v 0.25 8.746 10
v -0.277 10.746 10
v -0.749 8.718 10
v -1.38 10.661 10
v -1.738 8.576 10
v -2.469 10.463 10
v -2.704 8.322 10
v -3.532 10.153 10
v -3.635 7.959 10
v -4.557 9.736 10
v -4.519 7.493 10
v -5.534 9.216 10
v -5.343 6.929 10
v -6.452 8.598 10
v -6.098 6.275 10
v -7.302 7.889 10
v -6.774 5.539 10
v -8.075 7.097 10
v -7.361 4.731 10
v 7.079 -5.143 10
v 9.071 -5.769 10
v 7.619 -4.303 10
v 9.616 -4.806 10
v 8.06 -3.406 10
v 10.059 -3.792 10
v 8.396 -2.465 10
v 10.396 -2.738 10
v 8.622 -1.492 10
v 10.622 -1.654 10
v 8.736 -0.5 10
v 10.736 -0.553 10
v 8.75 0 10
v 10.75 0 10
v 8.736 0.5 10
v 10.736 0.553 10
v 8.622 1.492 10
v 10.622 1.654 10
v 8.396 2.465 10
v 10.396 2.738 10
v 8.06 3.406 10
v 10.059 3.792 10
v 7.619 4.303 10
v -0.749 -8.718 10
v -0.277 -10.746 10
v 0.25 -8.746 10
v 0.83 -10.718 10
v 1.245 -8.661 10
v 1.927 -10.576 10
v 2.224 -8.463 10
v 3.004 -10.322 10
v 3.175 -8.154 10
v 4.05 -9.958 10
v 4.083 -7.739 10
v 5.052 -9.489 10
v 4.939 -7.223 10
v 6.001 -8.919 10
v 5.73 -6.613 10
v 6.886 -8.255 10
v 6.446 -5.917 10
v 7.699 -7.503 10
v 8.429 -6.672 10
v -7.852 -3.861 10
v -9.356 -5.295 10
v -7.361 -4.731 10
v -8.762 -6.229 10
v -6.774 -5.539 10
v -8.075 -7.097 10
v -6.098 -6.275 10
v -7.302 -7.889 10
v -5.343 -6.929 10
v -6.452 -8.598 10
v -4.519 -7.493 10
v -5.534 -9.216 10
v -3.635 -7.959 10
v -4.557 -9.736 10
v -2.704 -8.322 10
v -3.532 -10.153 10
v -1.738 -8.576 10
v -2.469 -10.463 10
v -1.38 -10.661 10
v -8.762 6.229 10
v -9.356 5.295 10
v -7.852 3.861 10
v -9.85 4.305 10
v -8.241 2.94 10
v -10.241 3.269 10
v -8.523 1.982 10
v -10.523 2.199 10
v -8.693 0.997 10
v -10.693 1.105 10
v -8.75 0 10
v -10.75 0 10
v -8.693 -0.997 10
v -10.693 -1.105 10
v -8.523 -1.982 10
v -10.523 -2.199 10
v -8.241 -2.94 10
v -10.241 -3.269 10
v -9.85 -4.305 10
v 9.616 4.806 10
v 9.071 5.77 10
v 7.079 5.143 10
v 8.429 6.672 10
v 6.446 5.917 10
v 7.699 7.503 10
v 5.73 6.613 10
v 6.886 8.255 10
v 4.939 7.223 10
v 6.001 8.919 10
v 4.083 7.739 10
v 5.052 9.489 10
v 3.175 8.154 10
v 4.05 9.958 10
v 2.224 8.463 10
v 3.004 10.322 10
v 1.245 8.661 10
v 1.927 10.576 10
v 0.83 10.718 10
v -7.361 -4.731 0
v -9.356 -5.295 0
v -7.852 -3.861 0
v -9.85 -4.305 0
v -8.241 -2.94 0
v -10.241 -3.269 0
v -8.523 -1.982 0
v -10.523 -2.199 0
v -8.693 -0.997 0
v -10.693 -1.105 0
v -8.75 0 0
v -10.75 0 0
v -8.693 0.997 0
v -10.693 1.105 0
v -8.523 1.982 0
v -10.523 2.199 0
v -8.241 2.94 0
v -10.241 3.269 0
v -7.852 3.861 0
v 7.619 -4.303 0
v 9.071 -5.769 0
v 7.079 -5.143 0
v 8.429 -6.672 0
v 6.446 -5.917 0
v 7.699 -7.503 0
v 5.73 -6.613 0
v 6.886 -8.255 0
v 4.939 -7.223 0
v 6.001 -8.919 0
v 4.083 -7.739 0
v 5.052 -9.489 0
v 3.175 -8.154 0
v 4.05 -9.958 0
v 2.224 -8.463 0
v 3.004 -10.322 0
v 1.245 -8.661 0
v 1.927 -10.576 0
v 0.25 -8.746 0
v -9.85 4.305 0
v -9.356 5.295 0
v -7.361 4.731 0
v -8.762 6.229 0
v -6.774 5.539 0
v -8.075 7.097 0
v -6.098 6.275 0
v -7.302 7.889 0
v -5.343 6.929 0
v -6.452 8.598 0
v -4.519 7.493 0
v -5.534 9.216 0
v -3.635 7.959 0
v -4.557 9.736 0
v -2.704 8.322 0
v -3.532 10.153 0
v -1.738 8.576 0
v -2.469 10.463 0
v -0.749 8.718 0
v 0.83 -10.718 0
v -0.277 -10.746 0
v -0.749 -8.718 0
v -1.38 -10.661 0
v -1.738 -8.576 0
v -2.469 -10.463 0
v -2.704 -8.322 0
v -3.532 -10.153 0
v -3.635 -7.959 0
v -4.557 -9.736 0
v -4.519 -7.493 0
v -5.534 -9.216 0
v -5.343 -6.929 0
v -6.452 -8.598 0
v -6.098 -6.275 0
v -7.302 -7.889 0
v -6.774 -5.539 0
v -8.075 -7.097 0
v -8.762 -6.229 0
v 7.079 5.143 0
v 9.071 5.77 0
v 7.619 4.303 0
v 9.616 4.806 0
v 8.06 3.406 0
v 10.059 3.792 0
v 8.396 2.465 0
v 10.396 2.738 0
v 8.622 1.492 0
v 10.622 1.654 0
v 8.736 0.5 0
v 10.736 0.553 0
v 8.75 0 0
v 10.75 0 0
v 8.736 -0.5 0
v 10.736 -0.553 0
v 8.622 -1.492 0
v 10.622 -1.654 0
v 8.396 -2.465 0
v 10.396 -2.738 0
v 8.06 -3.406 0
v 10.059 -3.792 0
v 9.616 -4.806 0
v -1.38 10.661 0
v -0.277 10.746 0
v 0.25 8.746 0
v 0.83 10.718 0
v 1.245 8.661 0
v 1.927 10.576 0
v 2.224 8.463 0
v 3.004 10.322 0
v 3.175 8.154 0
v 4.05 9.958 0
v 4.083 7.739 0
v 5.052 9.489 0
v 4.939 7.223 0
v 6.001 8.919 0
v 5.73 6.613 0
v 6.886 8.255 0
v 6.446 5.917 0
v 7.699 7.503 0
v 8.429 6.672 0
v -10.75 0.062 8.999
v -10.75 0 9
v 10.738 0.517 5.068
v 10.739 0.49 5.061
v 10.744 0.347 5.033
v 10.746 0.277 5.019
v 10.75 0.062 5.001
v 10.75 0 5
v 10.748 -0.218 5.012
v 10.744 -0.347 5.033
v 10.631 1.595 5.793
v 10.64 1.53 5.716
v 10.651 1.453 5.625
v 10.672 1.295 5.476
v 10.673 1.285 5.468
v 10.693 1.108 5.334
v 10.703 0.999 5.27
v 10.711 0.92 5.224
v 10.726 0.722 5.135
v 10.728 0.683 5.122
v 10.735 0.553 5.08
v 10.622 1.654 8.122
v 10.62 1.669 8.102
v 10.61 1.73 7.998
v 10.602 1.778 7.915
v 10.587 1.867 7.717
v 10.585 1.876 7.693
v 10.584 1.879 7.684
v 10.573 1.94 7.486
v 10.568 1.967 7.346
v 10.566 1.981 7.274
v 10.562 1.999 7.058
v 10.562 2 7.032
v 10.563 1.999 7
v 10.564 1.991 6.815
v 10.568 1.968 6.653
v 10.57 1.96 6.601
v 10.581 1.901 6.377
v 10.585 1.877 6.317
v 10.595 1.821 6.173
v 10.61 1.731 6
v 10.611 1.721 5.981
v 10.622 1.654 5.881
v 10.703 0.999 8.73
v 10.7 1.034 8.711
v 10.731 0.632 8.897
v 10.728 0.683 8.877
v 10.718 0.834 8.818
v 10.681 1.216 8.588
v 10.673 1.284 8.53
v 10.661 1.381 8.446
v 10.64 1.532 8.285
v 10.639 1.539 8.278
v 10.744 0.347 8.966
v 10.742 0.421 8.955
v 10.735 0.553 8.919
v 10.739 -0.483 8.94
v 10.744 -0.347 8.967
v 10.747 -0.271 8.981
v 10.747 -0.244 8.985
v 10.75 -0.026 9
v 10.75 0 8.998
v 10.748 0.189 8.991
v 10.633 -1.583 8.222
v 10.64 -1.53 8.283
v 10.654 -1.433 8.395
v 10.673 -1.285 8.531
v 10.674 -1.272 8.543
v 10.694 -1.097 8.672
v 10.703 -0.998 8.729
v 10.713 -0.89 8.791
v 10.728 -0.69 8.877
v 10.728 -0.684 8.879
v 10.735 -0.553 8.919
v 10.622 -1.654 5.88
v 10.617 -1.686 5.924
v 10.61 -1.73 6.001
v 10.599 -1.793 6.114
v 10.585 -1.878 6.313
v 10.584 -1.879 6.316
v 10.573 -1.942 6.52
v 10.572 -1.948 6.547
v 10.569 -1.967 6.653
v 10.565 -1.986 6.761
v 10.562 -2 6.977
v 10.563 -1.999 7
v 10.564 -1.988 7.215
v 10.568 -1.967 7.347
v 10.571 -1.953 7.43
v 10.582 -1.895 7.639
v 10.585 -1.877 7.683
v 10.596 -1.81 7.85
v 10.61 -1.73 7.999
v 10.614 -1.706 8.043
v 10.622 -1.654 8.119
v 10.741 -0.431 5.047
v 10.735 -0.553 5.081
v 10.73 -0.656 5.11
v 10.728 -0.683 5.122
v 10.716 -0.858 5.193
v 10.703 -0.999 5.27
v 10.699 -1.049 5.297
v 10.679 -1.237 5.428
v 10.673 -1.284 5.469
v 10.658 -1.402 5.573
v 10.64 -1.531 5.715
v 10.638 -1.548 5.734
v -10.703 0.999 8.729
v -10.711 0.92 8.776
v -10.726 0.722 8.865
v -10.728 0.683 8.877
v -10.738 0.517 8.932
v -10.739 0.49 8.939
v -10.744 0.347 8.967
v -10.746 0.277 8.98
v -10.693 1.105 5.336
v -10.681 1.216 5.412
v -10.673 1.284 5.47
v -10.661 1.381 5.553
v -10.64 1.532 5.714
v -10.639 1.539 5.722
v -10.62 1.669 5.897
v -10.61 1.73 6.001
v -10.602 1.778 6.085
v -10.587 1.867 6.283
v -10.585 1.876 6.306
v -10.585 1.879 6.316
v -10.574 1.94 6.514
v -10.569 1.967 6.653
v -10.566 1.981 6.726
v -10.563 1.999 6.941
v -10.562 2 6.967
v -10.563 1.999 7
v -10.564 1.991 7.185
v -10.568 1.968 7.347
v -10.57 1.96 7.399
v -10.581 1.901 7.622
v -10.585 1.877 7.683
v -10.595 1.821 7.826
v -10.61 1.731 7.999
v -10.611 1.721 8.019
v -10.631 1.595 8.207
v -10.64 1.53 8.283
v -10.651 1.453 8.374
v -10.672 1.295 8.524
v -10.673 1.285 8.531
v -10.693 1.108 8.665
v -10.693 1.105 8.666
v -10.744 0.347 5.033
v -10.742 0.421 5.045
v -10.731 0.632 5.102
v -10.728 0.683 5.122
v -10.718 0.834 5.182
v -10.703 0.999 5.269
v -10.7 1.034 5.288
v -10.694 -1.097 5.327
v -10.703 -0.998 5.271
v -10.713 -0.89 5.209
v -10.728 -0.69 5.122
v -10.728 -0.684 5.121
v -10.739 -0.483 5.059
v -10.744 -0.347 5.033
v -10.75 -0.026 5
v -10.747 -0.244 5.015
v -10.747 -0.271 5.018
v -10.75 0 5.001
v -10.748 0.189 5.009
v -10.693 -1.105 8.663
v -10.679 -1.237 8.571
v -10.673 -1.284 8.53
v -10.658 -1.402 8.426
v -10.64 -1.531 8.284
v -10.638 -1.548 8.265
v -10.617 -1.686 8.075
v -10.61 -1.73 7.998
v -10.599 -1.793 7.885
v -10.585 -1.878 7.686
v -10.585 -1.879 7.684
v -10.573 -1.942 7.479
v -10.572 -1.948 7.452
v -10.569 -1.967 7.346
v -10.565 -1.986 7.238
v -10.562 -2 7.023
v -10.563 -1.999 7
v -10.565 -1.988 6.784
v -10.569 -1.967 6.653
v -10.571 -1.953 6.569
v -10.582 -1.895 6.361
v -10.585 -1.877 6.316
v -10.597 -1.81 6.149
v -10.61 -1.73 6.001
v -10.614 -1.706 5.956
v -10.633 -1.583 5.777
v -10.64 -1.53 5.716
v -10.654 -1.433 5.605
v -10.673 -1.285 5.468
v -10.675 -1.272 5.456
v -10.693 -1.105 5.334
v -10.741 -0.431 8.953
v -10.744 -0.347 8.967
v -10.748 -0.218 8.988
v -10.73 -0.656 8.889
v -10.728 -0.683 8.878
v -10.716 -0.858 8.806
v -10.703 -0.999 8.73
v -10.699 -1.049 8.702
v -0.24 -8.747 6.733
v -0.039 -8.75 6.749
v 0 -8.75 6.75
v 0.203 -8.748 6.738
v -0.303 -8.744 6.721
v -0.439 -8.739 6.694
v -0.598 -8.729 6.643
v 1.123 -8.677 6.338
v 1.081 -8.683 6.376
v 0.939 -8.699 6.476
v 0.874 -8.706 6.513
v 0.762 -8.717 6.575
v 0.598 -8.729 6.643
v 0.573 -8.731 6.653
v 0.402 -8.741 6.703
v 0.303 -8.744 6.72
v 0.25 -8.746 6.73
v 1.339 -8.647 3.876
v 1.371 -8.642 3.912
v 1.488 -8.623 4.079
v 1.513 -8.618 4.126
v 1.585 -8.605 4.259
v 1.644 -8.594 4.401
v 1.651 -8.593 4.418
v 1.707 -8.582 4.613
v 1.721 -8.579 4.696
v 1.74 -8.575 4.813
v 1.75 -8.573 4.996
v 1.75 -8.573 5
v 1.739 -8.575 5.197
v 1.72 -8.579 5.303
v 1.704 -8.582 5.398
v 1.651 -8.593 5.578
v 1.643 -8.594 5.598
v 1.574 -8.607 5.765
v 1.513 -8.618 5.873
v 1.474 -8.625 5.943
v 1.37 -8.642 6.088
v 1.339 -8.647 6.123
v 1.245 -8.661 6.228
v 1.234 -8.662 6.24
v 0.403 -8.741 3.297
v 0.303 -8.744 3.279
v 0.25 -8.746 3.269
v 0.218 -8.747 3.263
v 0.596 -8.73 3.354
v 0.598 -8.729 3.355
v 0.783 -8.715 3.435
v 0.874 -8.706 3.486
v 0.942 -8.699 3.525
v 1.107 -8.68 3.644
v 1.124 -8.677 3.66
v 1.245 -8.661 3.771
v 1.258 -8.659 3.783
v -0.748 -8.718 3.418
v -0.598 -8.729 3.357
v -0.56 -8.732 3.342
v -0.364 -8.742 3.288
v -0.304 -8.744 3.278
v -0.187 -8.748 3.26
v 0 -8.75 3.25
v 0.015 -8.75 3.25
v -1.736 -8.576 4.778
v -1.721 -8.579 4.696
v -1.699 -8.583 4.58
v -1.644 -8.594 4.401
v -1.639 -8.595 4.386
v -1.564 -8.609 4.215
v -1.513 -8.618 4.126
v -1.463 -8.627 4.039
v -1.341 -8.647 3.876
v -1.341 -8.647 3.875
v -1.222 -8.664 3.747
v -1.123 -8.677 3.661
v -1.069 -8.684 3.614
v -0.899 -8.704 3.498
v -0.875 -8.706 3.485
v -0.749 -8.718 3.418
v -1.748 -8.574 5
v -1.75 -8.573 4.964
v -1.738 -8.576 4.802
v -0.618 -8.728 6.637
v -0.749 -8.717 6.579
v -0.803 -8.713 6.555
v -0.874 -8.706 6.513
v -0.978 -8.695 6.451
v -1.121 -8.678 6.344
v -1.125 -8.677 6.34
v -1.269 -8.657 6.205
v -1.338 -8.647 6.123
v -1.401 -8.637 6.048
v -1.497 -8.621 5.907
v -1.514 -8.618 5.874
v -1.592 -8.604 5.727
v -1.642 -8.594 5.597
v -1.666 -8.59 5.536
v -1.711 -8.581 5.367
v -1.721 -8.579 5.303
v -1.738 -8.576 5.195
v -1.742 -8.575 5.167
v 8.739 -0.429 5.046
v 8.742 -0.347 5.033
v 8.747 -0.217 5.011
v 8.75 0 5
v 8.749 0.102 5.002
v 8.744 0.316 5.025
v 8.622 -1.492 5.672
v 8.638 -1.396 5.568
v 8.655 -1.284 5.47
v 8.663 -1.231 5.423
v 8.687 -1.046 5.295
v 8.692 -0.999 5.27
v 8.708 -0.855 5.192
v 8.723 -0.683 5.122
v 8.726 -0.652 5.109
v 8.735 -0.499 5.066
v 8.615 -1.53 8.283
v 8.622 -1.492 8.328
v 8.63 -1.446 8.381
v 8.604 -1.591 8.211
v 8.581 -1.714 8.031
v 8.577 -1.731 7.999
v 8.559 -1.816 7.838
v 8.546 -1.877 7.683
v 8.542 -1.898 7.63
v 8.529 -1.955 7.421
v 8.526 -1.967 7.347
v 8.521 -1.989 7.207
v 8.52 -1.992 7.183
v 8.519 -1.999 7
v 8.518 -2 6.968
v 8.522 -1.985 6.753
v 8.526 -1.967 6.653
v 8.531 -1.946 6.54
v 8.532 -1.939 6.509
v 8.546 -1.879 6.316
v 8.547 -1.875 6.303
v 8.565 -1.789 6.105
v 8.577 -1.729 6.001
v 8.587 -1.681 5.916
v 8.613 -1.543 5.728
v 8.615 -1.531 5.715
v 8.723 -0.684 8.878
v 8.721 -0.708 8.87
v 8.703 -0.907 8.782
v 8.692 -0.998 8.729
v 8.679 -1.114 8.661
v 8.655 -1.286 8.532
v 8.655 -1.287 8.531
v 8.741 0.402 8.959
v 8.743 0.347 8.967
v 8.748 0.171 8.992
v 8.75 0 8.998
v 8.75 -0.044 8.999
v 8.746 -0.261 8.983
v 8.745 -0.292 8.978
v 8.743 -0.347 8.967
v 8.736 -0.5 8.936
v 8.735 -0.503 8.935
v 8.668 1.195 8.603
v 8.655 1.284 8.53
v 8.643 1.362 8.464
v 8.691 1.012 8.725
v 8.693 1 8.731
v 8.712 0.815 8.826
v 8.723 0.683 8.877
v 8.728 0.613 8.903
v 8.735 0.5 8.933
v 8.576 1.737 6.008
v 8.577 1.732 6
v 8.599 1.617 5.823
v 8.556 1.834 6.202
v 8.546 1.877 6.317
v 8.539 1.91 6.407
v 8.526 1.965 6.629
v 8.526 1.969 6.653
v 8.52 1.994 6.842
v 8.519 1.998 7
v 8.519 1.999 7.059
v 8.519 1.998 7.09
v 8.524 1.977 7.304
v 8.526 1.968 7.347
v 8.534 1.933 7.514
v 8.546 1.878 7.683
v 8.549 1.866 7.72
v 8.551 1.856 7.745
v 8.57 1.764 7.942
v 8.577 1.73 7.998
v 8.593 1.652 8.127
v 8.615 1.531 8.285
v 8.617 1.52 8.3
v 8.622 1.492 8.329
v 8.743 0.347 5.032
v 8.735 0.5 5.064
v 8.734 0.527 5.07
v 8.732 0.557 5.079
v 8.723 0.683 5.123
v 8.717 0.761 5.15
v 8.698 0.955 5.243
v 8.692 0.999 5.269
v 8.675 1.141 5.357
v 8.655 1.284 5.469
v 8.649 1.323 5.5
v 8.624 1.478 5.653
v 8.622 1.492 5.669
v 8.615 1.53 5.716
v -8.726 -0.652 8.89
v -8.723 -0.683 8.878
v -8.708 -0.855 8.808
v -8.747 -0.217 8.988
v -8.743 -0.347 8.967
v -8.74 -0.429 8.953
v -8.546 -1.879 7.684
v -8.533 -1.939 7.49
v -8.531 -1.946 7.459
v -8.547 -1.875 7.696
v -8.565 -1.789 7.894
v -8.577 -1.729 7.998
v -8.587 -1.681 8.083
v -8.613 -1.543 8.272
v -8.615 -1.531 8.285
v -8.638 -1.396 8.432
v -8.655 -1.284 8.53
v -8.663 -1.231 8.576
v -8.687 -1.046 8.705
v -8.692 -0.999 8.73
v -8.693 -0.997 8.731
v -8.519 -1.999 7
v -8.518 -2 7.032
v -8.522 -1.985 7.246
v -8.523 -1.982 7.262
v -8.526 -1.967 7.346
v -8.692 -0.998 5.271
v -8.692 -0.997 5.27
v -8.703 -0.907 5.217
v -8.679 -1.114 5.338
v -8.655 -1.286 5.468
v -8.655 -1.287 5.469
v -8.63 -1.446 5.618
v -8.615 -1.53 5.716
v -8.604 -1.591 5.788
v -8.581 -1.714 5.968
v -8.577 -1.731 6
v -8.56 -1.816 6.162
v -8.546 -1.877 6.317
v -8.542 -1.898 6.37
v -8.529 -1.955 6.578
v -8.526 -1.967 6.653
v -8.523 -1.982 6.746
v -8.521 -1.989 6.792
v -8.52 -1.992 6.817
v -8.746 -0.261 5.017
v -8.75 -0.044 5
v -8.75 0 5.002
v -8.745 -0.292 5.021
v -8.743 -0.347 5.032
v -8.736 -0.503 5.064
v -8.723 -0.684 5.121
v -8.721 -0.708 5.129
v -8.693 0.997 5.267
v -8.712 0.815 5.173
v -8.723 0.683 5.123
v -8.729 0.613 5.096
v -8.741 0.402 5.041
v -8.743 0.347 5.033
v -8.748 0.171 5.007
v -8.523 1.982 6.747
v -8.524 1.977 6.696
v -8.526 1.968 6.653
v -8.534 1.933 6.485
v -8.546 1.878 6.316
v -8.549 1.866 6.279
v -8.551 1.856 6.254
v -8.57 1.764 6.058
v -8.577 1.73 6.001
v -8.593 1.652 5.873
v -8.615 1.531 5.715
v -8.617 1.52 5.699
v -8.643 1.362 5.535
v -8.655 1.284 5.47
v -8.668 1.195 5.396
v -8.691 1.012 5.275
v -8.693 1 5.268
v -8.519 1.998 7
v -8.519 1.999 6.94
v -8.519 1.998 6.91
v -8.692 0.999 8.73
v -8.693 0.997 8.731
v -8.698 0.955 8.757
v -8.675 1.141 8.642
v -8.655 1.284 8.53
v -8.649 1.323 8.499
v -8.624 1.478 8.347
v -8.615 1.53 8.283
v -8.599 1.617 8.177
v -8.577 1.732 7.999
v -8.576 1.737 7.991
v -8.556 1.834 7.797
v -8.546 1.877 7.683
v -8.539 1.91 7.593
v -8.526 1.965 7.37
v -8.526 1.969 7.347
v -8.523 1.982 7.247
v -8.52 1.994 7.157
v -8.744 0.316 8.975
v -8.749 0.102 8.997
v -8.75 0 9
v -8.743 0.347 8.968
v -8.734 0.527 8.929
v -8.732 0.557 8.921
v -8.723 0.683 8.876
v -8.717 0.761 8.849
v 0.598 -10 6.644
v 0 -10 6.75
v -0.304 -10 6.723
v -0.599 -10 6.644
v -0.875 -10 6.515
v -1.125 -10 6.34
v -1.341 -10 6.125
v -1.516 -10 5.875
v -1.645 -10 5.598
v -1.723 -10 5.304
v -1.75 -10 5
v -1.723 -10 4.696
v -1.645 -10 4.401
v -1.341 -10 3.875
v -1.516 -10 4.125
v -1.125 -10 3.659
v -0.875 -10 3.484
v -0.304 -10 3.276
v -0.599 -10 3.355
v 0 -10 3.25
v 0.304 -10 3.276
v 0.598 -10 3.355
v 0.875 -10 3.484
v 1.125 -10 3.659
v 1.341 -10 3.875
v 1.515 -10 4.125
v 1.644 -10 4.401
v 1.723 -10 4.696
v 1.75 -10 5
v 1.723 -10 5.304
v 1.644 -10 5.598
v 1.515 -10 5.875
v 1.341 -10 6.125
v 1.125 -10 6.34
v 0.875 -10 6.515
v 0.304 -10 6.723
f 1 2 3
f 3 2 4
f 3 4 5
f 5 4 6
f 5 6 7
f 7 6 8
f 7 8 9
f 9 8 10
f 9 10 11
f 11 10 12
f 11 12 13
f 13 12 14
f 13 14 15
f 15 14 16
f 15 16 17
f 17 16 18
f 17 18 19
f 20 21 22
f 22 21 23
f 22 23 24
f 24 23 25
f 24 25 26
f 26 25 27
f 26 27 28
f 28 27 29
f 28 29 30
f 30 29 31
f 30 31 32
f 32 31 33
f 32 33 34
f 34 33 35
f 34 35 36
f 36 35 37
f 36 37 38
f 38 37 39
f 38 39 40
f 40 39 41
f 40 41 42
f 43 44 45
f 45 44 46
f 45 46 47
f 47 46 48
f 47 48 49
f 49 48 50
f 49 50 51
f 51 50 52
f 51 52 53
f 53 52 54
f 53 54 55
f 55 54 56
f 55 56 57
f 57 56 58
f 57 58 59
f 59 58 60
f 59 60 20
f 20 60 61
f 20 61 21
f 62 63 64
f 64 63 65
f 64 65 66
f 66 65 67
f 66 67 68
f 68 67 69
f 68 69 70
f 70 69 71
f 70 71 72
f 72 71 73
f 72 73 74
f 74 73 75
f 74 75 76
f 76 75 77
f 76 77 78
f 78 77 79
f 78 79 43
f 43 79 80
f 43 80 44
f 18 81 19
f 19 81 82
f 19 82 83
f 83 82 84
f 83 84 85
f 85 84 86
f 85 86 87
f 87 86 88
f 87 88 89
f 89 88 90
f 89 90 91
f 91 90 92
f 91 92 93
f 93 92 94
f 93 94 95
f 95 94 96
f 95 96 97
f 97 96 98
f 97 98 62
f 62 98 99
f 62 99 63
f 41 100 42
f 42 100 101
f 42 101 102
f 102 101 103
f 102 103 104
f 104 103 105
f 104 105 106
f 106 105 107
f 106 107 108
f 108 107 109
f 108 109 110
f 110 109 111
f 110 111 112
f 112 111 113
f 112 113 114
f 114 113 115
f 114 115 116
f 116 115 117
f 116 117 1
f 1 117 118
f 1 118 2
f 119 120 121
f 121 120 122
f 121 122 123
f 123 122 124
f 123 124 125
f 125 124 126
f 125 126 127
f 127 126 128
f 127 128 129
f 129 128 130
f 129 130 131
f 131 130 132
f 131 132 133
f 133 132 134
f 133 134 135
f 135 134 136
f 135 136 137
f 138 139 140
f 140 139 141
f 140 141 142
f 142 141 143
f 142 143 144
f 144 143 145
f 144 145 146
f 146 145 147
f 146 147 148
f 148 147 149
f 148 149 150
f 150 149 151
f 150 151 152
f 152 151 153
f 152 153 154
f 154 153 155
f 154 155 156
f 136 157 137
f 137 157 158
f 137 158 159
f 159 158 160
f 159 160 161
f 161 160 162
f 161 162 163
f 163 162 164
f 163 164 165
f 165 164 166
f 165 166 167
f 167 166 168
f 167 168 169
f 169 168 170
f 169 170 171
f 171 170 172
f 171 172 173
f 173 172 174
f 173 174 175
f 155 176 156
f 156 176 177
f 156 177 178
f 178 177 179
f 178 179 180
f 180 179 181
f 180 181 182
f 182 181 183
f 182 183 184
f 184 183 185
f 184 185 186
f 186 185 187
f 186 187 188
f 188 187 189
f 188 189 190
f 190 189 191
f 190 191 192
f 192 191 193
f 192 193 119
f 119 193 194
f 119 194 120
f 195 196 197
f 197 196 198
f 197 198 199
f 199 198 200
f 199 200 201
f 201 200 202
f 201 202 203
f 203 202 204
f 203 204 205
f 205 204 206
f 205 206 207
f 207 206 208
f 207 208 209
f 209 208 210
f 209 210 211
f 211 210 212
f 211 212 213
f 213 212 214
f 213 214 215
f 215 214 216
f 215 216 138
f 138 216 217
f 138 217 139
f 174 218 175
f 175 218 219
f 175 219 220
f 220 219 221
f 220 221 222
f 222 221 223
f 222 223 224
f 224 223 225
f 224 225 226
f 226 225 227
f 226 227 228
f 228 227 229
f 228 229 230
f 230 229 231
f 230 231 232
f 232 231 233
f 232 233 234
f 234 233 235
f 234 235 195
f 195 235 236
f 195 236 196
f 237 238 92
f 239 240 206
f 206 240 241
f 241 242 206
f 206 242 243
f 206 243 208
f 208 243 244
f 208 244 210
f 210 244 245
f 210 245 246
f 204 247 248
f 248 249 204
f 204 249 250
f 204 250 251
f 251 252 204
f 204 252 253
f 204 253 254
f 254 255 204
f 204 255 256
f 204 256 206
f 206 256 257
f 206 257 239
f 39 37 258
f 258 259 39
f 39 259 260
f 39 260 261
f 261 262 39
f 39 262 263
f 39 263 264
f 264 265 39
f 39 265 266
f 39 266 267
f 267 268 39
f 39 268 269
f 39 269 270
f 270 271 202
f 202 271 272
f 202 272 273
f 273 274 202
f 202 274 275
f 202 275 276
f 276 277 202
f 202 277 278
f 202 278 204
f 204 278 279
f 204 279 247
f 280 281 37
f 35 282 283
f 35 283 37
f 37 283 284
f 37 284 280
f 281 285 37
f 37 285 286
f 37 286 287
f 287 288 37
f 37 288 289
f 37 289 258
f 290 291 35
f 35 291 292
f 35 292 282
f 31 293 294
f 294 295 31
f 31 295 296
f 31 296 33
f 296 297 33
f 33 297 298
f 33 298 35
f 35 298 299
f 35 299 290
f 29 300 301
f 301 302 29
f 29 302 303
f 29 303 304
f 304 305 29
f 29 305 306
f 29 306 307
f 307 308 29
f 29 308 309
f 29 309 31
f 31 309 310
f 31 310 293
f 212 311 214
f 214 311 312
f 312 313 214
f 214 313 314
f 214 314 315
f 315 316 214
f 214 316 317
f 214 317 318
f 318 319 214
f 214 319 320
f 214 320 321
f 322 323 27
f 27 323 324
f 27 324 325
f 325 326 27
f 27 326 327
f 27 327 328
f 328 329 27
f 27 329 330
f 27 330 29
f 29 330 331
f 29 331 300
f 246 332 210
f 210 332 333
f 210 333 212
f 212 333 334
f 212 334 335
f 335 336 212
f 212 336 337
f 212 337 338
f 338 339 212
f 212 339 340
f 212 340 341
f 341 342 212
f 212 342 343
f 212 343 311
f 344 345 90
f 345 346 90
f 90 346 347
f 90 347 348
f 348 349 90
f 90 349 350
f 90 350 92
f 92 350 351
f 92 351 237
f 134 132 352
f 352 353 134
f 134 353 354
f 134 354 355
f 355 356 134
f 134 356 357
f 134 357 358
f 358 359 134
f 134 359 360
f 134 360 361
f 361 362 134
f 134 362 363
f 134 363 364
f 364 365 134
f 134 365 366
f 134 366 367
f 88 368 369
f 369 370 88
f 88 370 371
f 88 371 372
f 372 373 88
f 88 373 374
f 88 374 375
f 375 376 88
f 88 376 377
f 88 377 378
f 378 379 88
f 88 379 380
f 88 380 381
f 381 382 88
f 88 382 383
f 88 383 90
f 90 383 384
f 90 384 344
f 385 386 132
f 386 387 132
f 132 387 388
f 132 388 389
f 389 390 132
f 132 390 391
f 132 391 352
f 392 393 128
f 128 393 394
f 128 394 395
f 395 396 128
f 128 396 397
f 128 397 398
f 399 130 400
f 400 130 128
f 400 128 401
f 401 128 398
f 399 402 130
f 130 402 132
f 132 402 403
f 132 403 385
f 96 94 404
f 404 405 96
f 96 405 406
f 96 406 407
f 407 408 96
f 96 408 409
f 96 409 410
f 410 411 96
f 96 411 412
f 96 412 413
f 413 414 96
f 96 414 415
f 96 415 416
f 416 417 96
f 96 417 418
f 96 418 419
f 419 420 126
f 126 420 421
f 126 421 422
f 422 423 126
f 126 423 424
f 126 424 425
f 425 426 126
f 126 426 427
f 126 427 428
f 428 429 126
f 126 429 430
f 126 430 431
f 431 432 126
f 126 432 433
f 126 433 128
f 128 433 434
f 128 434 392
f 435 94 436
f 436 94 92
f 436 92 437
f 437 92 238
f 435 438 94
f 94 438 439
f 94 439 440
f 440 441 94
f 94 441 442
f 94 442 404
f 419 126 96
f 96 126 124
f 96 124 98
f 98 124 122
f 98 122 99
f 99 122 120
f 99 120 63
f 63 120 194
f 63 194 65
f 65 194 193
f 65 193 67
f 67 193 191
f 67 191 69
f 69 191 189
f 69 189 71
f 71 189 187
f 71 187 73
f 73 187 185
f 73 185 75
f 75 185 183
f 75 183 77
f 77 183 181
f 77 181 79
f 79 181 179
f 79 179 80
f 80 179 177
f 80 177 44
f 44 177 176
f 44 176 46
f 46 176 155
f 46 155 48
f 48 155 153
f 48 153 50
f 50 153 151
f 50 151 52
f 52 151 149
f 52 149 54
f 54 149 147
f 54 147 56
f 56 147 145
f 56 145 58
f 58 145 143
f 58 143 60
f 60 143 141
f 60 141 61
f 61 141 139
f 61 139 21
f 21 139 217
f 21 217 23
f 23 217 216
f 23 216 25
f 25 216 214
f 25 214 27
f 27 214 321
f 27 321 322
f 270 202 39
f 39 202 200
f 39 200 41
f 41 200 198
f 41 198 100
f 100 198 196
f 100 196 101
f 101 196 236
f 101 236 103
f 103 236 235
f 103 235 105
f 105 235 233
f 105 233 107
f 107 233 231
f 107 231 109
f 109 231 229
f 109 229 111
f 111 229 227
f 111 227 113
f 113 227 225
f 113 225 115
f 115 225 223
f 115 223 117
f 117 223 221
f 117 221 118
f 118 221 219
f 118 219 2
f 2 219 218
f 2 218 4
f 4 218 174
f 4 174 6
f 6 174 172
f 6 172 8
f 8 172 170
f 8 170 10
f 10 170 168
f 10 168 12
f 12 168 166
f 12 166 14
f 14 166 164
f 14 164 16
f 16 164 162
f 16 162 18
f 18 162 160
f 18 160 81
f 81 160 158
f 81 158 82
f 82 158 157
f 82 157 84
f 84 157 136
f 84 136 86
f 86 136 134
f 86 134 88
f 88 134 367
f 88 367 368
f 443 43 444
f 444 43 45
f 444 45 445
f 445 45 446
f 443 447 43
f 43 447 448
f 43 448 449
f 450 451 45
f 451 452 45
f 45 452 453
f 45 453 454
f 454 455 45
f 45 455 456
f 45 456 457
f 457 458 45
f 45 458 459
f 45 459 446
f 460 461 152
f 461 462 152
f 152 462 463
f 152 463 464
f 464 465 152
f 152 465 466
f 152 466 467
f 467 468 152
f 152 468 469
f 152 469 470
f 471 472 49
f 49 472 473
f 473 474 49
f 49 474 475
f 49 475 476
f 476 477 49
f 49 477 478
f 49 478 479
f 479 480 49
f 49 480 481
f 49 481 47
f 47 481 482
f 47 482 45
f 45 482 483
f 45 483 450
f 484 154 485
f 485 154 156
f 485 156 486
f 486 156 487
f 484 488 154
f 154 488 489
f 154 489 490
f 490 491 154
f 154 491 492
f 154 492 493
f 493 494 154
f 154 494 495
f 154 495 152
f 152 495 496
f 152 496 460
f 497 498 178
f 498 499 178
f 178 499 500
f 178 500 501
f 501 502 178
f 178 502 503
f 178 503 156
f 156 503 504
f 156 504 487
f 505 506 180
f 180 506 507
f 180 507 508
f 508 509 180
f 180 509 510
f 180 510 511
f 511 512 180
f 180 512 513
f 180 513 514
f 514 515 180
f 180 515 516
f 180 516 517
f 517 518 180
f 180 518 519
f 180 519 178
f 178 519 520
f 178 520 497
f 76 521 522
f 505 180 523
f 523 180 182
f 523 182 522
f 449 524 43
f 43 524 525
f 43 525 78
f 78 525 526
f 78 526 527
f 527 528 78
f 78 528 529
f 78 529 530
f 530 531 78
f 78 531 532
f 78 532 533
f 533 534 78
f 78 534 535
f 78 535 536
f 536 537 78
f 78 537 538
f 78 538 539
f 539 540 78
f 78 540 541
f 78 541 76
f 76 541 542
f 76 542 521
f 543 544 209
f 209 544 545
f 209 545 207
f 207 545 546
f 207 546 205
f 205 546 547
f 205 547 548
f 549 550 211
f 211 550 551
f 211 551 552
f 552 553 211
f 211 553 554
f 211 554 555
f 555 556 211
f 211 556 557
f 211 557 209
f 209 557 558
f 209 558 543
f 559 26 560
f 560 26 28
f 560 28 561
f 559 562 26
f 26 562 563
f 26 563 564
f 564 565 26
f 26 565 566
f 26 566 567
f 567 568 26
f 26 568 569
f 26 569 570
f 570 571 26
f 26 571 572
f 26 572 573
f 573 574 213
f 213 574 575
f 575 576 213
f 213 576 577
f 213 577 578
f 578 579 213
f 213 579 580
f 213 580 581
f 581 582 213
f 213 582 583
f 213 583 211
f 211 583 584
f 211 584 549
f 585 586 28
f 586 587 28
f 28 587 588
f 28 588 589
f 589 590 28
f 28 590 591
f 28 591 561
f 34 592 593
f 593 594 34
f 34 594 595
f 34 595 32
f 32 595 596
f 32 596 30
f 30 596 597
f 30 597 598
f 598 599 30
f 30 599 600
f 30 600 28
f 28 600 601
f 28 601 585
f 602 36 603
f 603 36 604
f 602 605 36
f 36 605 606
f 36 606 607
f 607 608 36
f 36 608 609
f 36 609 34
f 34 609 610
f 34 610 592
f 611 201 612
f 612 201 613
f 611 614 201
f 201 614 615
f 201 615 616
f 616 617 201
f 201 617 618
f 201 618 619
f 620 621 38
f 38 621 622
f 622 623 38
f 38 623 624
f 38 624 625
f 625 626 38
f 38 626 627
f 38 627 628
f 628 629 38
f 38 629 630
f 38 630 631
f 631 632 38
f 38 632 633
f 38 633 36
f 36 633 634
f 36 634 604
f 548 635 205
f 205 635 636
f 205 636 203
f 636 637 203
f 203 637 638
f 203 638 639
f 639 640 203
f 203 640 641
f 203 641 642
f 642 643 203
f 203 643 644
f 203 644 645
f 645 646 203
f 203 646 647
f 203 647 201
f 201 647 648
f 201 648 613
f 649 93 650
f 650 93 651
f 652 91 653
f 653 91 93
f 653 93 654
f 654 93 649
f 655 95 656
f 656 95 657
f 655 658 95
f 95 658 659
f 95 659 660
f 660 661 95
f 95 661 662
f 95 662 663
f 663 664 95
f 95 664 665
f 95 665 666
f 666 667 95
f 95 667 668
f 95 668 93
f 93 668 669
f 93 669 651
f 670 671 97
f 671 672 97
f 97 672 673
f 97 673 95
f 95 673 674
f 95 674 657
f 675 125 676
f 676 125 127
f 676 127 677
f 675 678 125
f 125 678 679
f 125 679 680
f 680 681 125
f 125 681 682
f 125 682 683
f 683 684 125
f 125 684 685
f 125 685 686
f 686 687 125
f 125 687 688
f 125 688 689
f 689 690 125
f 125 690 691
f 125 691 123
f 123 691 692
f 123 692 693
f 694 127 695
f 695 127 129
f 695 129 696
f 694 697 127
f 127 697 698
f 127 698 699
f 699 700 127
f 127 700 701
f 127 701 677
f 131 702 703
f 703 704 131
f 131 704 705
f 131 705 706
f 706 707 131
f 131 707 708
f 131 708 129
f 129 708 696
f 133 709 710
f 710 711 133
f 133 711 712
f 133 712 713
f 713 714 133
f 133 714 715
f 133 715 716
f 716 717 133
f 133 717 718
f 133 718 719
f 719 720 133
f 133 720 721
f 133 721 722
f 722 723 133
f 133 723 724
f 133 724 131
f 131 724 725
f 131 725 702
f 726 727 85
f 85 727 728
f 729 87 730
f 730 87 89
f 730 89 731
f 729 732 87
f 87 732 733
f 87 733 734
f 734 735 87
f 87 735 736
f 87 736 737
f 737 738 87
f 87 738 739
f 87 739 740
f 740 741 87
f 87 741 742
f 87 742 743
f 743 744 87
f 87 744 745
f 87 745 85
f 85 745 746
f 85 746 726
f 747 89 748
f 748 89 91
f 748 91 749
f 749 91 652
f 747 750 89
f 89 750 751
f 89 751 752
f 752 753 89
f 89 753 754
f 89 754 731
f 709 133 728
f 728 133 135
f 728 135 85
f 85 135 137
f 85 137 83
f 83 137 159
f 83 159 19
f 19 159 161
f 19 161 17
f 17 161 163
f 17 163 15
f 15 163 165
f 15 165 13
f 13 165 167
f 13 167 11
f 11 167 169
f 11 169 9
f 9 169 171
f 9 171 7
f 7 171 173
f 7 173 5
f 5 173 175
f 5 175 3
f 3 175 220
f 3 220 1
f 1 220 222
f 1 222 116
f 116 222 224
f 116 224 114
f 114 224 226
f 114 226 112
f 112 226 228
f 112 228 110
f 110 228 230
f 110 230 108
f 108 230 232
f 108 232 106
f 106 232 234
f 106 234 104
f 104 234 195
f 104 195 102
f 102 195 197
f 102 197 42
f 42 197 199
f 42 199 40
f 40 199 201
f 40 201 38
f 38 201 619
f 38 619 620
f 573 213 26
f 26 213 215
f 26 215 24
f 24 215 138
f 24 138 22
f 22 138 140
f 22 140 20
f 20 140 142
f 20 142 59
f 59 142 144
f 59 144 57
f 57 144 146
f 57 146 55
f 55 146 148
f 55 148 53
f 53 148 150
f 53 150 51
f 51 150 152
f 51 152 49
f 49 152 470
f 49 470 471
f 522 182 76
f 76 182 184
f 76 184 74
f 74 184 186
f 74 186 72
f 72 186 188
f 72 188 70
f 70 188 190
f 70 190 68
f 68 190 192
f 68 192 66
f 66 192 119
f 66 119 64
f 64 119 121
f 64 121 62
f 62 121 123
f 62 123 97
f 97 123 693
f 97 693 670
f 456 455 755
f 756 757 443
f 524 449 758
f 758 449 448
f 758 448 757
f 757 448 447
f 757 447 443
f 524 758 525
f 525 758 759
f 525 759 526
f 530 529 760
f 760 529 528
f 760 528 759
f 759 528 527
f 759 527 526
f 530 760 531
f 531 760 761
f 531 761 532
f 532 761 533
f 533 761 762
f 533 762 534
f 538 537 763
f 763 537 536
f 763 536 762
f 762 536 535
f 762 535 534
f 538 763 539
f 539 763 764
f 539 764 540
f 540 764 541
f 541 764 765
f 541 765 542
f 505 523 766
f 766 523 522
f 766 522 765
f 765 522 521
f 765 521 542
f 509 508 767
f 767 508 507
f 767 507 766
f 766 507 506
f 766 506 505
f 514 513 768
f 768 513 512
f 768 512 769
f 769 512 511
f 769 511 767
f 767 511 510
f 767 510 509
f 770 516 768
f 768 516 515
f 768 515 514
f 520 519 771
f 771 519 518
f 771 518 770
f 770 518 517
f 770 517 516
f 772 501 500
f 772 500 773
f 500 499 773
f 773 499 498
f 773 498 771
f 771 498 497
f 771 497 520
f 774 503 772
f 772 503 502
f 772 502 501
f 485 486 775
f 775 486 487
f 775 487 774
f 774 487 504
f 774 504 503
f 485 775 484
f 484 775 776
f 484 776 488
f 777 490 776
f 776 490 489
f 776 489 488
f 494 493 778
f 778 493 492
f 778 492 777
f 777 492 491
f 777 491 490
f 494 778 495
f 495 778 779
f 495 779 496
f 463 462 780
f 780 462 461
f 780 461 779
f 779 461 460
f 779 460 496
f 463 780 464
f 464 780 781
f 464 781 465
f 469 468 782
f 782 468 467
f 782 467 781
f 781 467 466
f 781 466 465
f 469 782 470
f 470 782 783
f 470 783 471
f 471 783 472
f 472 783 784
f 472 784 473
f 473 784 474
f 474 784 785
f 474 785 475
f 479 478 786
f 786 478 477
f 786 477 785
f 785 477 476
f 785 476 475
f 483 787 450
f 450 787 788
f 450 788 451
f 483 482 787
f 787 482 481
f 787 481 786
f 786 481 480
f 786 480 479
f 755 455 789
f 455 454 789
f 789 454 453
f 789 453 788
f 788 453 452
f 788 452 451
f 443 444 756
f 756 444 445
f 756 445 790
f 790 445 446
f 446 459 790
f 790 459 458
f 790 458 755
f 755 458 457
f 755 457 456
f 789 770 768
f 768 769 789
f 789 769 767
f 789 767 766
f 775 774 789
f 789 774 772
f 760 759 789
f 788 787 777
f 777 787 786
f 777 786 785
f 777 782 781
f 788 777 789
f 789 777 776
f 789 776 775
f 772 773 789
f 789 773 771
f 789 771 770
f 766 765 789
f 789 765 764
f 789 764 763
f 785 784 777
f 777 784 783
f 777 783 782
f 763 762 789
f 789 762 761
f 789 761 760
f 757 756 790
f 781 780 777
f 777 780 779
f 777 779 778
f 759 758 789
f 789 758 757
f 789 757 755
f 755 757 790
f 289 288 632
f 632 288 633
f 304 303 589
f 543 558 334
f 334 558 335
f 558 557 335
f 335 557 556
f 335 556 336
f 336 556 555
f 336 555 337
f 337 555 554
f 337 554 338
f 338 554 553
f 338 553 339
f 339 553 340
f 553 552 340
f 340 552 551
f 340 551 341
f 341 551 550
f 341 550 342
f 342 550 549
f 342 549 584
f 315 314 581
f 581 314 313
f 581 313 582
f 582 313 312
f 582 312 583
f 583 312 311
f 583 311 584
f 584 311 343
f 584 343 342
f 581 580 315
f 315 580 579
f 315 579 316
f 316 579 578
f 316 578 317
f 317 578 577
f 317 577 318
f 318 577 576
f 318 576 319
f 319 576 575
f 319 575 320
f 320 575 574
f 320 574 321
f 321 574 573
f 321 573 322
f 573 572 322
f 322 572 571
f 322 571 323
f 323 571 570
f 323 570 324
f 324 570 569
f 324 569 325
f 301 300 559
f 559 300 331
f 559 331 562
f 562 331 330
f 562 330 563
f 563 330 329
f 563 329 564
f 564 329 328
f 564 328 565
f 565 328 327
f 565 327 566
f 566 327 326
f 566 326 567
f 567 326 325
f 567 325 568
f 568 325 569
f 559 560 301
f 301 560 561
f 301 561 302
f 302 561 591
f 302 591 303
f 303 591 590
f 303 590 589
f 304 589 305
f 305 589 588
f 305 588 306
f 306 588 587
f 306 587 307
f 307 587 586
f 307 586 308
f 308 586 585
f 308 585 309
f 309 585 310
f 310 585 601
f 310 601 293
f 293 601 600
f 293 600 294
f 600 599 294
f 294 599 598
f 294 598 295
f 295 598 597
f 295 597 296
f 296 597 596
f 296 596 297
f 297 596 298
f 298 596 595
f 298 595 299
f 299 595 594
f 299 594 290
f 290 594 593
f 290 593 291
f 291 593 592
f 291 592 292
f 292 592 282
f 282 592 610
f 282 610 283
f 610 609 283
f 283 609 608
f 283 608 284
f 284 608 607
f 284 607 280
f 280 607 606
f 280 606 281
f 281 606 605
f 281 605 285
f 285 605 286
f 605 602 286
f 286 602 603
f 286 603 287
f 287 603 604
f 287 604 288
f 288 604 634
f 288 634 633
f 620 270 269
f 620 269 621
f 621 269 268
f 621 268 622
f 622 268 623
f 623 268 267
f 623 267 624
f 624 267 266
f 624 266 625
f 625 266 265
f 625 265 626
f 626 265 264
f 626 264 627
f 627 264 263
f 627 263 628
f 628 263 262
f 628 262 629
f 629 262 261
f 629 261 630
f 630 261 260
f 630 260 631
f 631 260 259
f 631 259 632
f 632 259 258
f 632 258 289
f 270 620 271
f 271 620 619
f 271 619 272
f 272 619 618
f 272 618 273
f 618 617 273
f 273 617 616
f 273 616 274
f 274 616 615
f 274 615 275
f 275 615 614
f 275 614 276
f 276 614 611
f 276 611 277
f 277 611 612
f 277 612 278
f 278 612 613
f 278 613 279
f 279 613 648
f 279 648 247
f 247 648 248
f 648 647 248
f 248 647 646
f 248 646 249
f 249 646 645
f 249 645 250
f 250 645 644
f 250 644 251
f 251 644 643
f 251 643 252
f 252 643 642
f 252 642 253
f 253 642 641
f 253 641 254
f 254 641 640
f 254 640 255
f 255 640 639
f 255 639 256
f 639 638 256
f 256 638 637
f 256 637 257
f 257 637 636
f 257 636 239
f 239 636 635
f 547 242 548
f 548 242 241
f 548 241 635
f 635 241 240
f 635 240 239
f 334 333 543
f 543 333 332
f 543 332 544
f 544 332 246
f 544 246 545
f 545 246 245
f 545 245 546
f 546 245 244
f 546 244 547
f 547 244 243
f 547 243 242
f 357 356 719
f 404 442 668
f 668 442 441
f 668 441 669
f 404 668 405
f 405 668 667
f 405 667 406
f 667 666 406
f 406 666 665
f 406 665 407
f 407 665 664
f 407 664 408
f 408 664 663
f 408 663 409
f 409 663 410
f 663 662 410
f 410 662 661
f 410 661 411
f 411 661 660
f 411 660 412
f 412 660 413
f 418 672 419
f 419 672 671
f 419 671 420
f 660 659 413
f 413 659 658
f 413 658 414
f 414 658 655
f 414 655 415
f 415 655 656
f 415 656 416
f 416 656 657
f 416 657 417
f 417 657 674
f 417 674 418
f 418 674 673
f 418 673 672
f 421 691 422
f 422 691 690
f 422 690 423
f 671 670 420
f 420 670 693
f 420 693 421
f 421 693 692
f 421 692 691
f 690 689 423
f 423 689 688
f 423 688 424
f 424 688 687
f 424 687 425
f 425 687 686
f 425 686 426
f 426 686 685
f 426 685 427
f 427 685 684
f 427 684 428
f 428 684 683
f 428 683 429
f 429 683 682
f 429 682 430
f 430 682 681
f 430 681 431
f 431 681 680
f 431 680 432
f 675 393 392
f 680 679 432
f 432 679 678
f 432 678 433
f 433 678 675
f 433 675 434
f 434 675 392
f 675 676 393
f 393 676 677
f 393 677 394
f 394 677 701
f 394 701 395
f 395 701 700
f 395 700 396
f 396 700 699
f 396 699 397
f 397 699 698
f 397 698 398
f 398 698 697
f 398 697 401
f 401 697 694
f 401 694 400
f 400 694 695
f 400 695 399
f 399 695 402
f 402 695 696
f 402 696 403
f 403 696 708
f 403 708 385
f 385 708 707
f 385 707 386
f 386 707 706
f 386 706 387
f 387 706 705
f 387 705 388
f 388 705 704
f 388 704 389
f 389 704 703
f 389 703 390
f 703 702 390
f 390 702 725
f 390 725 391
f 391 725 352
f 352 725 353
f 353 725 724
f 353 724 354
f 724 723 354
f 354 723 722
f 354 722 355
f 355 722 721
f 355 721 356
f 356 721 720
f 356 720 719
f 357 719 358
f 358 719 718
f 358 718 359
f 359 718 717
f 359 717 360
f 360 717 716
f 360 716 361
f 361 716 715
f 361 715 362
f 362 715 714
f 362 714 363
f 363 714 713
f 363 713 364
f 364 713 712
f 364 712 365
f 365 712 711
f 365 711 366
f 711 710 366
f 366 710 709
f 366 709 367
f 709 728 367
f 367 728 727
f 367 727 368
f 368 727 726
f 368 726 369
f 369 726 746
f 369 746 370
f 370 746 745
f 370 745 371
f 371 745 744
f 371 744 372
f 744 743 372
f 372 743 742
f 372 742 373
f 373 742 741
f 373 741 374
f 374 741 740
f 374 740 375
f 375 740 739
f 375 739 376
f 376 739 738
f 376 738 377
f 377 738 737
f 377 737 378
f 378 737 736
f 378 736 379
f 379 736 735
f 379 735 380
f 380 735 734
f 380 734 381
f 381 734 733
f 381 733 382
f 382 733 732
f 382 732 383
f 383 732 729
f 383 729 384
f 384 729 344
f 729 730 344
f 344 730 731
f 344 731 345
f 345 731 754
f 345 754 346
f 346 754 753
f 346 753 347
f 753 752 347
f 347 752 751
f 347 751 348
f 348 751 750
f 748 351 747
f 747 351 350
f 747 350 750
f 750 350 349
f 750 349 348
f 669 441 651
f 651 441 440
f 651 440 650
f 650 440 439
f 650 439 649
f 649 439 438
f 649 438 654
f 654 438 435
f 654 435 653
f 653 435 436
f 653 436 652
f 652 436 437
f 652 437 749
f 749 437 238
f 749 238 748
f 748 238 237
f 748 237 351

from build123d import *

# Parameters (mm, degrees)
ESQUISSE1_R             = 10.75
ESQUISSE1_R_2           = 8.75
BOSS_EXTRU_1_DEPTH      = 10
ESQUISSE2_R             = 1.75
ENL_V_MAT_EXTRU_1_DEPTH = 10
ESQUISSE3_R             = 2
ENL_V_MAT_EXTRU_2_DEPTH = 15


with BuildPart() as part:
    # Esquisse1 → Boss.-Extru.1 (new body)
    with BuildSketch(Plane.XY):
        Circle(ESQUISSE1_R)
        Circle(ESQUISSE1_R_2, mode=Mode.SUBTRACT)
    extrude(amount=BOSS_EXTRU_1_DEPTH)

    # Esquisse2 → Enlèv. mat.-Extru.1 (cut)
    with BuildSketch(Plane(origin=(0, 0, 0), x_dir=(1, 0, 0), z_dir=(0, 1, 0))):
        with Locations((0, -5)):
            Circle(ESQUISSE2_R)
    extrude(amount=-ENL_V_MAT_EXTRU_1_DEPTH, mode=Mode.SUBTRACT)

    # Esquisse3 → Enlèv. mat.-Extru.2 (cut, symmetric)
    with BuildSketch(Plane(origin=(0, 0, 0), x_dir=(0, 0, -1), z_dir=(1, 0, 0))):
        with Locations((-7, 0)):
            Circle(ESQUISSE3_R)
    extrude(amount=ENL_V_MAT_EXTRU_2_DEPTH, both=True, mode=Mode.SUBTRACT)


solid = part.part
